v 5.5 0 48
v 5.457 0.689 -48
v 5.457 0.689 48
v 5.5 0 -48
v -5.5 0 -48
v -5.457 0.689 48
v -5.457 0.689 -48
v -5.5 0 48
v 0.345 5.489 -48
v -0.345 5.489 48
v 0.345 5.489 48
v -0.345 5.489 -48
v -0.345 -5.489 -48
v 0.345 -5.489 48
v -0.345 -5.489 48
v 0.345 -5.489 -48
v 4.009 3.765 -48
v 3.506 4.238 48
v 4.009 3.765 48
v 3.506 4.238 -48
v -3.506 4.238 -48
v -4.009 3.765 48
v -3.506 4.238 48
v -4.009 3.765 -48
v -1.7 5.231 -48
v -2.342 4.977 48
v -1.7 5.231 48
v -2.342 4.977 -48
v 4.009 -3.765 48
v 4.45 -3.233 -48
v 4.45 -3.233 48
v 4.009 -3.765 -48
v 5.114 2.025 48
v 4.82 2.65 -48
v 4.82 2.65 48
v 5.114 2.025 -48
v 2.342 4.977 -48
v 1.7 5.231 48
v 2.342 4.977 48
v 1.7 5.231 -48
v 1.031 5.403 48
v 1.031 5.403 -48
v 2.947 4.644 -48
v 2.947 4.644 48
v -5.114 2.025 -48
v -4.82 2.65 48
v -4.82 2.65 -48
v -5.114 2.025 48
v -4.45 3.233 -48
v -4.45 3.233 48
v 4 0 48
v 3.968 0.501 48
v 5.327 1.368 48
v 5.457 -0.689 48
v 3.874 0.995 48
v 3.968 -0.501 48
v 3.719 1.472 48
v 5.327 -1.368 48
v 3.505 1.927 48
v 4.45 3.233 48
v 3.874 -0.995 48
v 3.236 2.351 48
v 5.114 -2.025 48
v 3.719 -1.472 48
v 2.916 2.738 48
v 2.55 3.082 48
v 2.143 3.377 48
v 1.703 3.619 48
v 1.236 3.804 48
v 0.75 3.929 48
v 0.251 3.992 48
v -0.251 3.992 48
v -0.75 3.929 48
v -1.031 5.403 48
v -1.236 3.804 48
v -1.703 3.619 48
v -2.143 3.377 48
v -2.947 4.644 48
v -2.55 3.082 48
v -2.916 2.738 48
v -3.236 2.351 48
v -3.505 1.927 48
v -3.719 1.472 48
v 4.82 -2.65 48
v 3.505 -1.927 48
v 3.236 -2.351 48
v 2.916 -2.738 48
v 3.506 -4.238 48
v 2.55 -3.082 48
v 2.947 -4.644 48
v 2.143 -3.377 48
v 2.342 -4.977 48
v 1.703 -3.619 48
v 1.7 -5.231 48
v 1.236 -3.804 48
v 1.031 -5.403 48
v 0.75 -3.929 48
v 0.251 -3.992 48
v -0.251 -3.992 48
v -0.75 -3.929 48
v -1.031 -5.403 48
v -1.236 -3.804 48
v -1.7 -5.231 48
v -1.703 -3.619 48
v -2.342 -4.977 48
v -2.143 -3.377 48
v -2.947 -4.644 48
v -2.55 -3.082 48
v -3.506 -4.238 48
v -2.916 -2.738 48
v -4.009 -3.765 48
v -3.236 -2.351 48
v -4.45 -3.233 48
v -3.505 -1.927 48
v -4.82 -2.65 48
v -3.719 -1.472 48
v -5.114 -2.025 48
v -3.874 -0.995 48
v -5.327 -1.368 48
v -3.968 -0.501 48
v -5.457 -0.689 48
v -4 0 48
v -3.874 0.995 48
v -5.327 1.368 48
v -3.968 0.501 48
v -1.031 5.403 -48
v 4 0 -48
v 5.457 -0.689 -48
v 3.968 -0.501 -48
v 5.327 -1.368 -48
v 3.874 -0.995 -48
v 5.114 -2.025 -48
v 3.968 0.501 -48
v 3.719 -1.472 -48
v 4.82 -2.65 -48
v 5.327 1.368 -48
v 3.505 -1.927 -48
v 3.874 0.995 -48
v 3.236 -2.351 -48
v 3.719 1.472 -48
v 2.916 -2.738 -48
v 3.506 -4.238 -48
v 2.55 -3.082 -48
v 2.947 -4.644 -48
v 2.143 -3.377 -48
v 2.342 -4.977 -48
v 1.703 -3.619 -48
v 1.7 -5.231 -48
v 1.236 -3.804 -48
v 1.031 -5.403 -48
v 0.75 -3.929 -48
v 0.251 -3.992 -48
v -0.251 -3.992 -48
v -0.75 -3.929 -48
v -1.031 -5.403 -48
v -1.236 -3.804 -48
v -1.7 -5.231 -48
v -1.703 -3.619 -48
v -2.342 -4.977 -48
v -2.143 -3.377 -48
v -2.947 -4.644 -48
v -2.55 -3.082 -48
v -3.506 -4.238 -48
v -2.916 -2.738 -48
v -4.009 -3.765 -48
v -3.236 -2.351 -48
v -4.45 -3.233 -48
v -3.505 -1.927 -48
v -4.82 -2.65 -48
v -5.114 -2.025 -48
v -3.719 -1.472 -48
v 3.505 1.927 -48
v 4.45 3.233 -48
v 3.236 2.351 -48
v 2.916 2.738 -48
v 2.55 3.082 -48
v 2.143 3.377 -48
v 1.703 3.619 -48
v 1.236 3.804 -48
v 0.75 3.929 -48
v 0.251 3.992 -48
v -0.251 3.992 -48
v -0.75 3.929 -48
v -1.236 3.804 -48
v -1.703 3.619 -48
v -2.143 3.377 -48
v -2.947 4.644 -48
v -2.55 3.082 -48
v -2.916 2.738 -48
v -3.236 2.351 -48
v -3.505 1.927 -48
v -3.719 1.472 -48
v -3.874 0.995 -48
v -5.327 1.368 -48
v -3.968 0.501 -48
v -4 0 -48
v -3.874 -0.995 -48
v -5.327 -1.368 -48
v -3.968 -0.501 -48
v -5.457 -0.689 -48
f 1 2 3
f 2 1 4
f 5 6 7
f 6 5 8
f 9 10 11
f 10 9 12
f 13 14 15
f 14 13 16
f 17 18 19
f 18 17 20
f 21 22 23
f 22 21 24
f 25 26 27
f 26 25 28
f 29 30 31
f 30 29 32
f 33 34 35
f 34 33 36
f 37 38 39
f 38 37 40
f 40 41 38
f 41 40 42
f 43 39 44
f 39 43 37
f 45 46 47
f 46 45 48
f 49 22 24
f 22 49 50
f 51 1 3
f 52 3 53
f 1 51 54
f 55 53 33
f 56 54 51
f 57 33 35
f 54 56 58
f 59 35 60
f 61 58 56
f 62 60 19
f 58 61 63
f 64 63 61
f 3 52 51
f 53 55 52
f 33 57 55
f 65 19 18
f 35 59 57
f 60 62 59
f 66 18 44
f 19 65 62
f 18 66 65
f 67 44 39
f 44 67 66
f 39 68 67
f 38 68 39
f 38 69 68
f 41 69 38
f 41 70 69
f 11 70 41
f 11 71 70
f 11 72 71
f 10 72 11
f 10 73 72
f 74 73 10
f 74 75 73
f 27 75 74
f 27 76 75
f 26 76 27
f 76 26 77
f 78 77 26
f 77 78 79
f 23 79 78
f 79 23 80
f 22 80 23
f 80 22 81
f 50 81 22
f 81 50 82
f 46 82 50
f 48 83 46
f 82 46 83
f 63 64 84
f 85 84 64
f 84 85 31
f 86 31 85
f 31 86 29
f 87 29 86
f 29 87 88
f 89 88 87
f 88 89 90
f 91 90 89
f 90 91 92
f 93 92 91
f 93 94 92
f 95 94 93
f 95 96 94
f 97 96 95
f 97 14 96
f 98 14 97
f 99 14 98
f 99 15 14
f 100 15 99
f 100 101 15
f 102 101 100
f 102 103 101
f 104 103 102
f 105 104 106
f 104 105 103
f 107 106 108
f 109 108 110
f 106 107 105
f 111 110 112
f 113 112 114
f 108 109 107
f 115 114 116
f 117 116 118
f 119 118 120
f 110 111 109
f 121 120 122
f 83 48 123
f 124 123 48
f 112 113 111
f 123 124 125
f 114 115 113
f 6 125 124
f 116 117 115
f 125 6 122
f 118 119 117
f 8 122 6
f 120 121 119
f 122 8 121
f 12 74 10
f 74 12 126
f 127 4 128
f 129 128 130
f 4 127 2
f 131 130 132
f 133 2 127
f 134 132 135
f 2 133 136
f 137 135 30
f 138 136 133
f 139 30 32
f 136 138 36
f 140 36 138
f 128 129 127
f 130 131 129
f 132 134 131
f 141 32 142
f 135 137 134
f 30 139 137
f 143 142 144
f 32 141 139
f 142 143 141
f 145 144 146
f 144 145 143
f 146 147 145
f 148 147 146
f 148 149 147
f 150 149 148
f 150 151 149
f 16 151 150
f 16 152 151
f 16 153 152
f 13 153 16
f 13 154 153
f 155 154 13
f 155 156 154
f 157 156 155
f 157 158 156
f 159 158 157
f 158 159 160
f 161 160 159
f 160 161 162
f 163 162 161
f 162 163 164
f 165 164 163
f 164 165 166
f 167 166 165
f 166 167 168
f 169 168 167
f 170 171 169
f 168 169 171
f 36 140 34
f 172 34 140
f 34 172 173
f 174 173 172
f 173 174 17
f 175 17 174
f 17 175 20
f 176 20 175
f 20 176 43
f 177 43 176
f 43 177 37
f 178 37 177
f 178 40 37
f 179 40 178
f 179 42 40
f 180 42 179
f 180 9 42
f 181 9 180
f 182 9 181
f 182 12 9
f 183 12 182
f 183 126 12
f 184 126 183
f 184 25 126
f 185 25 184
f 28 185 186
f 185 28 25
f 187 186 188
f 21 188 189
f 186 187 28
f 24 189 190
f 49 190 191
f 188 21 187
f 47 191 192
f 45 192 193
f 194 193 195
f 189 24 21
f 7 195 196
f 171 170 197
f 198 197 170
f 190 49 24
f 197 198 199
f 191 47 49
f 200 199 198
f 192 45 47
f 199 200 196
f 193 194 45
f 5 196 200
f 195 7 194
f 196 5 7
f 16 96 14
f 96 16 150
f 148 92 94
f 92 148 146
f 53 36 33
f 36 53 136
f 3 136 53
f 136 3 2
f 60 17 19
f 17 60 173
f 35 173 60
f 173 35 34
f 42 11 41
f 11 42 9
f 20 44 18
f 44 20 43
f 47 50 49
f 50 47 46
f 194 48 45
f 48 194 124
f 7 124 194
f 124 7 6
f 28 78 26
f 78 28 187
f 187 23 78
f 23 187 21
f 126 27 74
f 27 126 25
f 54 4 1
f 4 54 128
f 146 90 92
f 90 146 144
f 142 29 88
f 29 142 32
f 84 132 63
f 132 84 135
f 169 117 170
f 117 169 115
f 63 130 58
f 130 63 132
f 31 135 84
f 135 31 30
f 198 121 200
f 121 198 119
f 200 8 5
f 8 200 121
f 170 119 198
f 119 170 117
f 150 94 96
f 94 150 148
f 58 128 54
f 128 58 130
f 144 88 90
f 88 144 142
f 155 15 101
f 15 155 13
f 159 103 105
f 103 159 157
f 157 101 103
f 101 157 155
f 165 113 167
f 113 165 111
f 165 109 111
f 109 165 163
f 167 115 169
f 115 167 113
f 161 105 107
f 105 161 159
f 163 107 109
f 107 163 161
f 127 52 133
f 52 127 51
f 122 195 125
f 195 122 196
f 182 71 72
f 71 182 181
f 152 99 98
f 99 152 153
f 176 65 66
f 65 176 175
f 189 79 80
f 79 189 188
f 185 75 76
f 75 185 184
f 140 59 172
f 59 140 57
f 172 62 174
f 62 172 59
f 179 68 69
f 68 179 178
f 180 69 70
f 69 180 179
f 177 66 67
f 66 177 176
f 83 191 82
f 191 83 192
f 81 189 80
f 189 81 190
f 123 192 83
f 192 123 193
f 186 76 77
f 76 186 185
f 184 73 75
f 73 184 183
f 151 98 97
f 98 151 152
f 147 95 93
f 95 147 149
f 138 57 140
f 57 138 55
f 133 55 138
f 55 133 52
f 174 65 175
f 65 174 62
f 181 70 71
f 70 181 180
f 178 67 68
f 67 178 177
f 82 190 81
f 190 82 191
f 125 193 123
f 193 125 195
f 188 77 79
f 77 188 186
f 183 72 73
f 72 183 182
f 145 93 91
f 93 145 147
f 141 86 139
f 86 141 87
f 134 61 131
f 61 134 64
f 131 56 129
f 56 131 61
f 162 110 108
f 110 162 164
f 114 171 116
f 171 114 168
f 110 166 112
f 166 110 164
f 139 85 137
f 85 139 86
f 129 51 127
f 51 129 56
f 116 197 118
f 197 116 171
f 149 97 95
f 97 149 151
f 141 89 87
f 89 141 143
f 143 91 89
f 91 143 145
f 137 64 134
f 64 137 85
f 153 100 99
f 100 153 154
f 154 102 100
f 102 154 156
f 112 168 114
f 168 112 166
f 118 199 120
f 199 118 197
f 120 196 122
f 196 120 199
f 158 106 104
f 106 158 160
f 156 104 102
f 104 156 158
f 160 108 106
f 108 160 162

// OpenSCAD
$fn = 50;


difference() {
	union() {
		translate(v = [0, 0, -48.0000000000]) {
			cylinder(h = 96, r = 5.5000000000);
		}
	}
	union() {
		translate(v = [0, 0, -100.0000000000]) {
			cylinder(h = 200, r = 4);
		}
	}
}
